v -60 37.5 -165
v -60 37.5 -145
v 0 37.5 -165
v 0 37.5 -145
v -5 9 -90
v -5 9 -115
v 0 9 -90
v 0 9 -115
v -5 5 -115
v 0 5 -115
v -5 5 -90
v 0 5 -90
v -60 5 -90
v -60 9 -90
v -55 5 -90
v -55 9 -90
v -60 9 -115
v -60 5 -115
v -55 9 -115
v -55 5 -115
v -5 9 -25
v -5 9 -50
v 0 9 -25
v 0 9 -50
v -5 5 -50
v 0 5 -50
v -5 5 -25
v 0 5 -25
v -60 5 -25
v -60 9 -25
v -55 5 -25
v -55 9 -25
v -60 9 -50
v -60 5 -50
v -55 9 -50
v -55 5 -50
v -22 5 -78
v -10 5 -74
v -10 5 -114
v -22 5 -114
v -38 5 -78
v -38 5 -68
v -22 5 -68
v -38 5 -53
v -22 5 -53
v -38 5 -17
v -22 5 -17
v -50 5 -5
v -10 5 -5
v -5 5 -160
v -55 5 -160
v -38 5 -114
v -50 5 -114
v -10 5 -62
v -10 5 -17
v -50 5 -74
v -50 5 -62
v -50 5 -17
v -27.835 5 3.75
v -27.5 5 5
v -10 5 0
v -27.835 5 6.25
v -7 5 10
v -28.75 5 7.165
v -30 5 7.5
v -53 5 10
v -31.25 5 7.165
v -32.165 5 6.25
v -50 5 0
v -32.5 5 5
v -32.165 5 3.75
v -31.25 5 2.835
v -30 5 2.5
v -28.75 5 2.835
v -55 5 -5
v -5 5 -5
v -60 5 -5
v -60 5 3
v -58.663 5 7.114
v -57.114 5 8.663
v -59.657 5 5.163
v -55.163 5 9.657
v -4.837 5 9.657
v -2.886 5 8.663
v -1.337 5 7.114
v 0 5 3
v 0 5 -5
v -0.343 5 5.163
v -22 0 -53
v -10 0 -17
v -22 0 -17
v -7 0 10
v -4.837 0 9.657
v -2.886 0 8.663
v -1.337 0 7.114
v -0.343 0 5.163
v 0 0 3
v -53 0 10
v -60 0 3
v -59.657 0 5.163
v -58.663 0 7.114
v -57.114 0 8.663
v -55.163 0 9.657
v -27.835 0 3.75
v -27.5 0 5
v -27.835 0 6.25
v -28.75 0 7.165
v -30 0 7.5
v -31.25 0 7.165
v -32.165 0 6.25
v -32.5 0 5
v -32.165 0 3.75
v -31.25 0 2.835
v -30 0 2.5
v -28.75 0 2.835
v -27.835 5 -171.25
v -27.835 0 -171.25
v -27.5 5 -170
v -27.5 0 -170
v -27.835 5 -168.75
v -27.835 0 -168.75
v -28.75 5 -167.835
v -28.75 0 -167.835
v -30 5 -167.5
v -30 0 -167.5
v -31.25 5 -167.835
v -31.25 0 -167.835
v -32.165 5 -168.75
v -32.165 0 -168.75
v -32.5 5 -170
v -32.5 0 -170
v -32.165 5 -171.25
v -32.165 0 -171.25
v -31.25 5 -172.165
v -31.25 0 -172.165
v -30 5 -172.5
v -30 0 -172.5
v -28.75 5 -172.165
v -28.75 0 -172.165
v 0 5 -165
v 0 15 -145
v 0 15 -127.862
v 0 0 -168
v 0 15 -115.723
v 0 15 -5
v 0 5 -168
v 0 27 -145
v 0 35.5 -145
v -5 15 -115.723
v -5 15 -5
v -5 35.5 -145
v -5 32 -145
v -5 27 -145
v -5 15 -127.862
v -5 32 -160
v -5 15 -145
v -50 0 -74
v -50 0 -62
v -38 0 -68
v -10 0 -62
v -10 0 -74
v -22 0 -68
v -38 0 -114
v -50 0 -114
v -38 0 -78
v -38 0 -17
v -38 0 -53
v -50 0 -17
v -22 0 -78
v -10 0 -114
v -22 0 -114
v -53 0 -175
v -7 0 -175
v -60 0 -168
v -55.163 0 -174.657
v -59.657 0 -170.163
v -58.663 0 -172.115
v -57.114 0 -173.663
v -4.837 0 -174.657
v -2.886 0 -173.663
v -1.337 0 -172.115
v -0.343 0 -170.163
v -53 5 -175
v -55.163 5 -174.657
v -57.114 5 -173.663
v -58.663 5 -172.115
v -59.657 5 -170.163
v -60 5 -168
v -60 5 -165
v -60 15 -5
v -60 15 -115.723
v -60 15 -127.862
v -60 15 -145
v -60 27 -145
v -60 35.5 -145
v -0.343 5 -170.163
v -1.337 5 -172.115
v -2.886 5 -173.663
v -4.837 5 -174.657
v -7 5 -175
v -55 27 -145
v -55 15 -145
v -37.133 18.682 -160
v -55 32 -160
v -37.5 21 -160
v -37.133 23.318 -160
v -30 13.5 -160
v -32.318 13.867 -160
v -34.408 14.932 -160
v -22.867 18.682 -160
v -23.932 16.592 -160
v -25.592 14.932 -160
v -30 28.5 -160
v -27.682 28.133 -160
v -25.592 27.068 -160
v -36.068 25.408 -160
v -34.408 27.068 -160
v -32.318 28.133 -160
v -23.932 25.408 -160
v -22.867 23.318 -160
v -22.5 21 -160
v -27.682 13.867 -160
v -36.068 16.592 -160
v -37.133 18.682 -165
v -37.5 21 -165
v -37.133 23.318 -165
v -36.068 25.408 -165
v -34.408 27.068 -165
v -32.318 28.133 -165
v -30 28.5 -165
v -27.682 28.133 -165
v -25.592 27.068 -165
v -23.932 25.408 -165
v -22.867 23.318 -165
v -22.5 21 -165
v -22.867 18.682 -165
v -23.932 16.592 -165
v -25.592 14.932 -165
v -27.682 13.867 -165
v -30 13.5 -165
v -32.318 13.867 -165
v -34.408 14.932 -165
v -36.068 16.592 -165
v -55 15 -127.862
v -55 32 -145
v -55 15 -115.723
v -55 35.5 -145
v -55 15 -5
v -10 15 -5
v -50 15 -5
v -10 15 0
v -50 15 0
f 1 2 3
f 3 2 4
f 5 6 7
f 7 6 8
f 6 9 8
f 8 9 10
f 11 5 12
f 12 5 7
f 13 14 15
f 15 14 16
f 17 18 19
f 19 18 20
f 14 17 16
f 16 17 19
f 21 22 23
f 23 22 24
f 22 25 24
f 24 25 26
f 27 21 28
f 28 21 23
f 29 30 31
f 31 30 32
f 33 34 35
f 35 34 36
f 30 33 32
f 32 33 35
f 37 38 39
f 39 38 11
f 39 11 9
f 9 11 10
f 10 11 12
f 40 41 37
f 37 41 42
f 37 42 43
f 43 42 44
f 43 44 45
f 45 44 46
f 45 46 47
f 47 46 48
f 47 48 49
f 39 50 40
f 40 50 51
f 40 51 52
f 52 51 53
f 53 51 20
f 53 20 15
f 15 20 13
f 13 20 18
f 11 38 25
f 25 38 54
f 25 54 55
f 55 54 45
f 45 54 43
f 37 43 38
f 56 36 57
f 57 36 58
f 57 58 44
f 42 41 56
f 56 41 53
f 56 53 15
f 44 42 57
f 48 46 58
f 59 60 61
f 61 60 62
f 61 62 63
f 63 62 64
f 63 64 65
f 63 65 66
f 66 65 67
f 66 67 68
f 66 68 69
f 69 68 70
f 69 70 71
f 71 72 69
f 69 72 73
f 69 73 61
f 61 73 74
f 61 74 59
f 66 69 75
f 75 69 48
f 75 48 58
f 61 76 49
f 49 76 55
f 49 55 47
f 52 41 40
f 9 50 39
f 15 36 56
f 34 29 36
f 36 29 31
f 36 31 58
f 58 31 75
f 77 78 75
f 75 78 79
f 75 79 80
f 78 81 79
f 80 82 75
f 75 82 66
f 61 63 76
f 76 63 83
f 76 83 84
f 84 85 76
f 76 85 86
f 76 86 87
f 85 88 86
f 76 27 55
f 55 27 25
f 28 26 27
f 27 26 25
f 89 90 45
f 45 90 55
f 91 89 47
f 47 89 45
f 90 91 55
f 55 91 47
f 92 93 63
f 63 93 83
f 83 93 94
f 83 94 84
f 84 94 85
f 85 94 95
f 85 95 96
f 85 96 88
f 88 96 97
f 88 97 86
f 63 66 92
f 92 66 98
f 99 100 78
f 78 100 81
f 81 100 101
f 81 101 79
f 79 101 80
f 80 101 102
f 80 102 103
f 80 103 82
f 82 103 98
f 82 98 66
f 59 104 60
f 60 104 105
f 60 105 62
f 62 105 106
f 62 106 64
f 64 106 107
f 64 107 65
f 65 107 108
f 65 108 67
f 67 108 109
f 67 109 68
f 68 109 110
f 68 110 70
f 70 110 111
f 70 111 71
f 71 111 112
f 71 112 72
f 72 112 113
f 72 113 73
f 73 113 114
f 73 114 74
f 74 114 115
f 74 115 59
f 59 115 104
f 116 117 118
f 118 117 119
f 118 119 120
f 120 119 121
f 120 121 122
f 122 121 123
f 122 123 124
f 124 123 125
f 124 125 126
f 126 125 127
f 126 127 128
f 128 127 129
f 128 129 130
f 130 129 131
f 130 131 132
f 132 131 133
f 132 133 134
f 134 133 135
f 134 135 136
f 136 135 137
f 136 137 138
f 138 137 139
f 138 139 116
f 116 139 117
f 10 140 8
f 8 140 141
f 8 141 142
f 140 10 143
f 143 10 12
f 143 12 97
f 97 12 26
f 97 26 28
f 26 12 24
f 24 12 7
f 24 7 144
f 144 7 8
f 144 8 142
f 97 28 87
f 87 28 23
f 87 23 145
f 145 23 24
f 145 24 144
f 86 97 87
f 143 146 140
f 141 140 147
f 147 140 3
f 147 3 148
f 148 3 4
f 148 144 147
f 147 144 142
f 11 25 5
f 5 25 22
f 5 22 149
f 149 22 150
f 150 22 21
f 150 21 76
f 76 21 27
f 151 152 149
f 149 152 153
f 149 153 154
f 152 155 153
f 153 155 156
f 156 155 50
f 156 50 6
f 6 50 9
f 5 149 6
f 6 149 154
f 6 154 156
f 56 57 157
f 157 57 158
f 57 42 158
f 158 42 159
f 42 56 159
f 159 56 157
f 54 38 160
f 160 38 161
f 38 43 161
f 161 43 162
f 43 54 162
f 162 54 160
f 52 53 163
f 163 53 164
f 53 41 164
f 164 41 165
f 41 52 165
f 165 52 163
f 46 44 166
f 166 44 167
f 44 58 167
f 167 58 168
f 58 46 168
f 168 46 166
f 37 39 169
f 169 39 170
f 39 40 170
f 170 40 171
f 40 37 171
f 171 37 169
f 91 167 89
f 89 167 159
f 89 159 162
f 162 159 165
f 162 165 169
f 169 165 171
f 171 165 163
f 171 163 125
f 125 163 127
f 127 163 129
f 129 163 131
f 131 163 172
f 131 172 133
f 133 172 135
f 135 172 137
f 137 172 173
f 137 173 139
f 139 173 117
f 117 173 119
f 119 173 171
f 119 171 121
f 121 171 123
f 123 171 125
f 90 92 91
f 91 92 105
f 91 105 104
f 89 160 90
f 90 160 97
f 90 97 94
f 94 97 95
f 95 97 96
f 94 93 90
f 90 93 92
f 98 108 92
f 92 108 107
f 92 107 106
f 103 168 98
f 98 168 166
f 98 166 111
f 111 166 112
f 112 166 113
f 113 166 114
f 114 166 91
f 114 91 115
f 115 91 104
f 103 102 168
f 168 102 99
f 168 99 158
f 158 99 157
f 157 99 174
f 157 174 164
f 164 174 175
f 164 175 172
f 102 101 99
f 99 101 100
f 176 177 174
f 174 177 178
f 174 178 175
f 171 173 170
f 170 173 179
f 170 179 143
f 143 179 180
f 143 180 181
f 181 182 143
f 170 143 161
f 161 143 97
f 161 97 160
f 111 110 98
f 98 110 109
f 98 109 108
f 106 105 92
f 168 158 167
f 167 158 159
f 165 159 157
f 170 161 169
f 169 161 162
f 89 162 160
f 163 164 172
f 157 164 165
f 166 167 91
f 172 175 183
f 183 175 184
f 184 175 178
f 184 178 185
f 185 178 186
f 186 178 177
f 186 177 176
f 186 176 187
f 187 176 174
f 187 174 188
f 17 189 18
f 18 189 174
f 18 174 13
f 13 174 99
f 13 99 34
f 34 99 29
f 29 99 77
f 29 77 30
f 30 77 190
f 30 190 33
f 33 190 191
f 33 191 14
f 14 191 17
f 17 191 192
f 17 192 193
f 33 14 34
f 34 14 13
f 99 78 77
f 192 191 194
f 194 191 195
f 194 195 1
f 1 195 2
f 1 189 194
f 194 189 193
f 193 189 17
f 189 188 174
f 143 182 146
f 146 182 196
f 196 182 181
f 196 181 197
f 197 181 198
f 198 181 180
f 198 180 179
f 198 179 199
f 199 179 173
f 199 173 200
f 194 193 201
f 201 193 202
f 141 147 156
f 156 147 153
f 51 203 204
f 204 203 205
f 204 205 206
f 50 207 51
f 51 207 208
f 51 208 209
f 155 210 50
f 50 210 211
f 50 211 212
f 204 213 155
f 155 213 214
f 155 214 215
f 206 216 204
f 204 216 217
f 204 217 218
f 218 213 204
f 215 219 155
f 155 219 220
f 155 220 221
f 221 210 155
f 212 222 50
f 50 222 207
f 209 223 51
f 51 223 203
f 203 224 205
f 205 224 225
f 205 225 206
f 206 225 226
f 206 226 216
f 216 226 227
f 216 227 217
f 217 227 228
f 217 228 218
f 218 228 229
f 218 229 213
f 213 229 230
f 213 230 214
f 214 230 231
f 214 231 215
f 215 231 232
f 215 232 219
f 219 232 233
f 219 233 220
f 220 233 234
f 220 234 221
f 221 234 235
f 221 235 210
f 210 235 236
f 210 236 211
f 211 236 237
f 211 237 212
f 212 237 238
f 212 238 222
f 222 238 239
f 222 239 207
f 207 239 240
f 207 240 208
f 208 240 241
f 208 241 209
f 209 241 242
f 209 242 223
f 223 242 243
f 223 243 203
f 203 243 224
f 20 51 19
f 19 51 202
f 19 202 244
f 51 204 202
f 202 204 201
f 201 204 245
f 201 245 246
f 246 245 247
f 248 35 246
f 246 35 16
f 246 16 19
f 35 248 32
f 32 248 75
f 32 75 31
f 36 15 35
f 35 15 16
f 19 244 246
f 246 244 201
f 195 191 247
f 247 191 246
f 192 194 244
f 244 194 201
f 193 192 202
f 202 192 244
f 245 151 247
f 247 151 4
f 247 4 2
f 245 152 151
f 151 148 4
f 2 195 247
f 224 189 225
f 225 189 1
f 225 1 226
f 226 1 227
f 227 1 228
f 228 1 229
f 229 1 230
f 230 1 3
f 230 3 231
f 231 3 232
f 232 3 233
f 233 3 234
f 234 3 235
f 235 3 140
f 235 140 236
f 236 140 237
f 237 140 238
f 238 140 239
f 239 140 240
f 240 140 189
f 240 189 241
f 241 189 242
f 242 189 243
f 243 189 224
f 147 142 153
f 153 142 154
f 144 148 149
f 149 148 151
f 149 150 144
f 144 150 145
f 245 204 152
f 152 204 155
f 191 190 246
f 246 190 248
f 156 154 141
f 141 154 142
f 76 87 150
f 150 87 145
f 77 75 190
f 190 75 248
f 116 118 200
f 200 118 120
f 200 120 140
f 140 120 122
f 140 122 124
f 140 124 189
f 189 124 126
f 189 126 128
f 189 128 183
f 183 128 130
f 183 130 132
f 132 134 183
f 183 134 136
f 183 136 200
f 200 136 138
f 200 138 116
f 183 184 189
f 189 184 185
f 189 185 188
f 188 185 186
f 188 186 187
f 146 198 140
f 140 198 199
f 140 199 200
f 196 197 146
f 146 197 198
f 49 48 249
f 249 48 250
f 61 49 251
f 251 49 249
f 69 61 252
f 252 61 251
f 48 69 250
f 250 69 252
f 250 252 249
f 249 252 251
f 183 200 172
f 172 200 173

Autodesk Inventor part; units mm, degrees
ref_plane "YZ Plane" through (0, 0, 0) normal (1, 0, 0) x (0, 1, 0)
ref_plane "XZ Plane" through (0, 0, 0) normal (0, 1, 0) x (-1, 0, 0)
ref_plane "XY Plane" through (0, 0, 0) normal (0, 0, 1) x (1, 0, 0)
sketch "Sketch1" plane through (0, 0, 0) normal (0, 1, 0) x (-1, 0, 0)
  line L0 (0, 0) -> (60, 0)
  line L1 (60, 0) -> (60, -170)
  line L2 (60, -170) -> (0, -170)
  line L3 (0, -170) -> (0, 0)
  dimension "d0" = 60
  dimension "d1" = 170
extrude "Extrusion1" add sketch "Sketch1" along normal blind 5
sketch "Sketch2" plane through (0, 5, 0) normal (0, 1, 0) x (1, 0, 0)
  line L0 (-60, 0) -> (-55, 0)
  line L1 (-60, 170) -> (-60, 0) projected
  line L2 (0, 0) -> (0, 170) projected
  line L3 (-60, 170) -> (0, 170)
  line L4 (0, 170) -> (0, 162.5)
  line L5 (0, 162.5) -> (-60, 162.5)
  line L6 (-60, 162.5) -> (-60, 170)
  line L7 (-60, 0) -> (0, 0) projected
  line L8 (-60, 0) -> (0, 0)
  line L9 (0, 0) -> (0, 7.5)
  line L10 (0, 7.5) -> (-60, 7.5)
  line L11 (-60, 7.5) -> (-60, 0)
  line L12 (0, 170) -> (-60, 170) projected
  line L13 (-60, 0) -> (-55, 0)
  line L14 (-55, 0) -> (-55, 170)
  line L15 (-55, 170) -> (-60, 170)
  line L16 (-60, 170) -> (-60, 0)
  line L17 (0, 0) -> (-5, 0)
  line L18 (-5, 0) -> (-5, 170)
  line L19 (-5, 170) -> (0, 170)
  line L20 (0, 170) -> (0, 0)
  line L21 (-60, 0) -> (0, 0)
  line L22 (0, 0) -> (0, -5)
  line L23 (0, -5) -> (-60, -5)
  line L24 (-60, -5) -> (-60, 0)
  line L25 (-60, 170) -> (0, 170)
  line L26 (0, 170) -> (0, 175)
  line L27 (0, 175) -> (-60, 175)
  line L28 (-60, 175) -> (-60, 170)
  dimension "d5" = 7.5
  dimension "d6" = 7.5
  dimension "d7" = 5
  dimension "d8" = 5
  dimension "d10" = 5
  dimension "d11" = 5
extrude "Extrusion2" add sketch "Sketch2" against normal blind 5 contours L0 L7 L22 L23 L24 | L28 L27 L26 L3
sketch "Sketch3" plane through (0, 5, 0) normal (0, 1, 0) x (1, 0, 0)
  line L0 (0, -5) -> (-60, -5) projected
  line L1 (0, -5) -> (0, 175) projected
  line L2 (-60, -10) -> (0, -10)
  line L3 (0, -5) -> (0, 5)
  line L4 (-60, 5) -> (-60, -5)
  line L5 (-55, 175) -> (-60, 175)
  line L6 (-60, 175) -> (-60, 5)
  line L7 (-5, 175) -> (0, 175)
  line L8 (-60, 175) -> (-60, -5) projected
  line L9 (-60, 175) -> (-1, 175)
  line L10 (-1, 165) -> (-60, 165)
  line L11 (-60, 165) -> (-60, 175)
  line L12 (-55, 165) -> (-5, 165)
  line L13 (-5, 160) -> (-55, 160)
  line L14 (-55, 5) -> (-55, 160)
  line L15 (-5, 5) -> (-5, 160)
  line L16 (-50, 5) -> (-10, 5)
  line L17 (-10, 5) -> (-10, 5)
  line L18 (-10, 5) -> (-50, 5)
  line L19 (-50, 5) -> (-50, 5)
  line L20 (-60, 5) -> (-55, 5)
  line L21 (-5, 5) -> (0, 5)
  line L22 (0, 5) -> (0, 165)
  line L23 (-60, -5) -> (-60, -10)
  line L24 (0, -5) -> (0, -10)
  line L25 (-50, 5) -> (-50, 0)
  line L26 (-50, 0) -> (-10, 0)
  line L27 (-10, 0) -> (-10, 5)
  point P0 (0, 0)
  dimension "d15" = 5
  dimension "d16" = 5
  dimension "d17" = 10
  dimension "d18" = 5
  dimension "d19" = 40
  dimension "d89" = 155
  dimension "d90" = 5
  dimension "d91" = 10
sketch "Sketch4" plane through (0, 5, 0) normal (0, 1, 0) x (1, 0, 0)
  line L0 (-60, 175) -> (-60, -5) projected
  line L1 (-60, 5) -> (-55, 5)
  line L2 (-55, 5) -> (-55, 160)
  line L3 (-55, 160) -> (-5, 160)
  line L4 (-5, 160) -> (-5, 5)
  line L5 (-5, 5) -> (0, 5)
  line L6 (0, -5) -> (0, 175) projected
  line L7 (0, 165) -> (-60, 165)
  line L8 (-60, 165) -> (-60, 5)
  point P0 (0, 0)
extrude "Extrusion3" add sketch "Sketch3" along normal blind 10 contours L16 L27 L26 L25
extrude "Extrusion4" add sketch "Sketch4" along normal blind 10
sketch "Sketch5" plane through (0, 0, 5) normal (1, 0, 0) x (0, 0, -1)
  line L0 (180, 5) -> (170, 5) projected
  line L1 (170, 5) -> (165, 5)
  line L2 (165, 5) -> (165, 32)
  line L3 (165, 32) -> (170, 32)
  line L4 (170, 32) -> (170, 5)
  point P0 (5, 0)
  dimension "d25" = 5
  dimension "d26" = 27
sketch "Sketch6" plane through (0, 5, 0) normal (0, 1, 0) x (1, 0, 0)
  point P0 (0, 0)
extrude "Extrusion5" add sketch "Sketch5" against normal blind 60
sketch "Sketch7" plane through (0, 0, 5) normal (1, 0, 0) x (0, 0, -1)
  line L0 (165, 32) -> (170, 32) projected
  line L1 (170, 32) -> (150, 32)
  line L2 (150, 32) -> (150, 35.5)
  line L3 (150, 35.5) -> (170, 35.5)
  line L4 (170, 35.5) -> (170, 32)
  point P0 (5, 0)
  dimension "d29" = 20
  dimension "d30" = 3.5
extrude "Extrusion6" add sketch "Sketch7" against normal blind 60
sketch "Sketch8" plane through (-55, 5, -160) normal (0, 0, 1) x (1, 0, 0)
  point P0 (55, -5)
sketch "Sketch9" plane through (0, 0, 5) normal (1, 0, 0) x (0, 0, -1)
  line L0 (150, 35.5) -> (170, 35.5) projected
  line L1 (170, 35.5) -> (170, 5) projected
  line L2 (150, 35.5) -> (170, 35.5)
  line L3 (170, 35.5) -> (170, 27)
  line L4 (170, 27) -> (150, 27)
  line L5 (150, 27) -> (150, 35.5)
  point P0 (5, 0)
extrude "Extrusion7" add sketch "Sketch9" against normal blind 5
sketch "Sketch10" plane through (0, 0, 5) normal (1, 0, 0) x (0, 0, -1)
  line L0 (150, 35.5) -> (150, 27) projected
  line L1 (150, 27) -> (132.8622, 15)
  line L2 (10, 15) -> (165, 15) projected
  line L3 (150, 27) -> (170.9214, 27) construction
  line L4 (150, 35.5) -> (170, 35.5) projected
  line L5 (150, 35.5) -> (120.723, 15)
  line L6 (150, 35.5) -> (185.7407, 35.5) construction
  line L7 (132.8622, 15) -> (120.723, 15)
  line L8 (150, 35.5) -> (150, 27)
  point P0 (5, 0)
  dimension "d35" = 145
  dimension "d36" = 145
extrude "Extrusion8" add sketch "Sketch10" against normal blind 5
sketch "Sketch11" plane through (0, 0, 5) normal (1, 0, 0) x (0, 0, -1)
  point P0 (5, 0)
sketch "Sketch12" plane through (-60, 0, -175) normal (-1, 0, 0) x (0, 0, 1)
  line L0 (10, 35.5) -> (10, 5) projected
  line L1 (15, 27) -> (30, 27) projected
  line L2 (10, 35.5) -> (30, 35.5)
  line L3 (30, 35.5) -> (30, 27)
  line L4 (30, 27) -> (10, 27)
  line L5 (10, 27) -> (10, 35.5)
  point P0 (175, 0)
extrude "Extrusion9" add sketch "Sketch12" against normal blind 5
sketch "Sketch13" plane through (-60, 0, -175) normal (-1, 0, 0) x (0, 0, 1)
  line L0 (30, 27) -> (47.1378, 15)
  line L1 (15, 15) -> (170, 15) projected
  line L2 (30, 27) -> (50.9214, 27) construction
  line L3 (30, 32) -> (30, 35.5) projected
  line L4 (30, 35.5) -> (59.277, 15)
  line L5 (30, 35.5) -> (65.7407, 35.5) construction
  line L6 (59.277, 15) -> (47.1378, 15)
  line L7 (30, 27) -> (15, 27) projected
  line L8 (30, 35.5) -> (30, 27) projected
  line L9 (30, 27) -> (30, 35.5)
  point P0 (175, 0)
  dimension "d41" = 35
  dimension "d42" = 35
extrude "Extrusion10" add sketch "Sketch13" against normal blind 5
sketch "Sketch14" plane through (0, 0, 5) normal (1, 0, 0) x (0, 0, -1)
  line L0 (107.1526, 5) -> (92.1526, 5)
  line L1 (92.1526, 5) -> (92.1526, 7)
  line L2 (92.1526, 7) -> (107.1526, 7)
  line L3 (107.1526, 7) -> (107.1526, 5)
  line L4 (20, 5) -> (35, 5)
  line L5 (35, 5) -> (35, 7)
  line L6 (35, 7) -> (20, 7)
  line L7 (20, 7) -> (20, 5)
  point P0 (5, 0)
  point P1 (10, 5)
  point P2 (120.723, 15)
  dimension "d45" = 10
  dimension "d47" = 15
  dimension "d48" = 15
extrude "Extrusion11" cut sketch "Sketch14" against normal through all
sketch "Sketch15" plane through (0, 5, -165) normal (0, 0, -1) x (-1, 0, 0)
  circle A0 centre (30, 16) radius 7.5
  point P0 (0, -5)
  point P1 (0, 30.5)
  dimension "d53" = 15
extrude "Extrusion12" cut sketch "Sketch15" against normal blind 5
sketch "Sketch16" plane through (0, 0, 5) normal (1, 0, 0) x (0, 0, -1)
  line L0 (165, 27) -> (150, 27) projected
  line L1 (165, 15) -> (165, 27) projected
  line L2 (150, 27) -> (165, 27)
  line L3 (165, 27) -> (165, 15)
  line L4 (165, 15) -> (150, 15)
  line L5 (150, 15) -> (150, 27)
  point P0 (5, 0)
extrude "Extrusion13" add sketch "Sketch16" against normal blind 5
sketch "Sketch17" plane through (-60, 0, -175) normal (-1, 0, 0) x (0, 0, 1)
  line L0 (30, 27) -> (15, 27) projected
  line L1 (47.1378, 15) -> (30, 15) projected
  line L2 (15, 27) -> (30, 27)
  line L3 (30, 27) -> (30, 15)
  line L4 (30, 15) -> (15, 15)
  line L5 (15, 15) -> (15, 27)
  point P0 (175, 0)
extrude "Extrusion14" add sketch "Sketch17" against normal blind 5
fillet "Fillet1" radius 7 4 edges at (0, 2.5, -175) (-60, 2.5, -175) (0, 2.5, 5) (-60, 2.5, 5)
sketch "Sketch19" plane through (0, 5, 0) normal (0, 1, 0) x (1, 0, 0)
  line L0 (-50, 5) -> (-50, 5) projected
  line L1 (-50, 17) -> (-38, 17)
  line L2 (-38, 17) -> (-38, 53)
  line L3 (-38, 53) -> (-50, 17)
  line L4 (-10, 22) -> (-22, 22)
  line L5 (-22, 22) -> (-22, 58)
  line L6 (-22, 58) -> (-10, 22)
  line L7 (-38, 78) -> (-38, 114)
  line L8 (-38, 114) -> (-50, 114)
  line L9 (-50, 114) -> (-38, 78)
  line L10 (-22, 78) -> (-22, 114)
  line L11 (-22, 114) -> (-10, 114)
  line L12 (-10, 114) -> (-22, 78)
  point P0 (0, 0)
  dimension "d67" = 12
  dimension "d68" = 12
  dimension "d69" = 36
  dimension "d71" = 12
  dimension "d72" = 36
  dimension "d73" = 12
  dimension "d74" = 20
  dimension "d75" = 36
  dimension "d76" = 12
extrude "Extrusion16" cut sketch "Sketch19" against normal blind 5
sketch "Sketch20" plane through (0, 5, 0) normal (0, 1, 0) x (1, 0, 0)
  line L0 (-38, 17) -> (-50, 17) projected
  line L1 (-50, 114) -> (-38, 78) projected
  line L2 (-38, 78) -> (-38, 114) projected
  line L3 (-38, 68) -> (-50, 74)
  line L4 (-50, 62) -> (-38, 68)
  line L5 (-50, 74) -> (-50, 62)
  line L6 (-22, 68) -> (-10, 62)
  line L7 (-10, 74) -> (-22, 68)
  line L8 (-10, 62) -> (-10, 74)
  point P0 (0, 0)
extrude "Extrusion17" cut sketch "Sketch20" against normal blind 5
sketch "Sketch21" plane through (-60, 5, -5) normal (-1, 0, 0) x (0, 0, 1)
  line L0 (-17, 0) -> (-53, 0) projected
  line L1 (-7, 2) -> (-31, 2)
  line L2 (-31, 2) -> (-31, 0)
  line L3 (-31, 0) -> (-7, 0)
  line L4 (-7, 0) -> (-7, 2)
  line L5 (-79, 2) -> (-103, 2)
  line L6 (-103, 2) -> (-103, 0)
  line L7 (-103, 0) -> (-79, 0)
  line L8 (-79, 0) -> (-79, 2)
  point P0 (5, -5)
  dimension "d84" = 24
  dimension "d85" = 24
extrude "Extrusion18" cut sketch "Sketch21" against normal through all
sketch "Sketch22" plane through (0, 5, 0) normal (0, 1, 0) x (1, 0, 0)
  point P0 (0, 0)
sketch "Sketch24" plane through (0, 5, 0) normal (0, 1, 0) x (1, 0, 0)
  point P0 (0, 0)
sketch "Sketch25" plane through (0, 5, 0) normal (0, 1, 0) x (1, 0, 0)
  point P0 (0, 0)
sketch "Sketch26" plane through (0, 5, 0) normal (0, 1, 0) x (1, 0, 0)
  arc A0 (-60, 2) -> (-53, -5) centre (-53, 2) ccw projected
  line L0 (-60, 2) -> (0, 2)
  line L1 (0, 2) -> (0, -10)
  line L2 (0, -10) -> (-60, -10)
  line L3 (-60, -10) -> (-60, 2)
  point P0 (0, 0)
  dimension "d93" = 12
extrude "Extrusion19" add sketch "Sketch26" against normal blind 5
sketch "Sketch27" plane through (0, 5, 0) normal (0, 1, 0) x (1, 0, 0)
  point P0 (0, 0)
sketch "Sketch28" plane through (-60, 5, 10) normal (0, 0, 1) x (1, 0, 0)
  point P0 (60, -5)
sketch "Sketch29" plane through (0, 5, 0) normal (0, 1, 0) x (1, 0, 0)
  line L0 (-30, -10) -> (-30, -5)
  circle A0 centre (-30, -5) radius 2.5
  arc A1 (-53, 175) -> (-60, 168) centre (-53, 168) ccw projected
  line L1 (-7, 175) -> (-53, 175) projected
  line L2 (-30, 175) -> (-30, 170)
  circle A2 centre (-30, 170) radius 2.5
  point P0 (0, 0)
  point P1 (-60, -10)
  dimension "d96" = 30
  dimension "d97" = 5
  dimension "d98" = 5
  dimension "d102" = 5
extrude "Extrusion20" cut sketch "Sketch29" along normal mid plane 10
fillet "Fillet2" radius 7 2 edges at (-60, 2.5, 10) (0, 2.5, 10)
sketch "Sketch30" plane through (0, 5, 0) normal (0, 1, 0) x (1, 0, 0)
  line L0 (-22, 22) -> (-10, 22) projected
  line L1 (-24, 58) -> (-10, 58)
  line L2 (-10, 58) -> (-10, 22)
  line L3 (-10, 22) -> (-24, 22)
  line L4 (-24, 22) -> (-24, 58)
  point P0 (0, 0)
extrude "Extrusion21" add sketch "Sketch30" against normal blind 5
sketch "Sketch31" plane through (0, 5, 0) normal (0, 1, 0) x (1, 0, 0)
  point P0 (0, 0)
sketch "Sketch32" plane through (0, 5, 0) normal (0, 1, 0) x (1, 0, 0)
  line L0 (-38, 53) -> (-50, 17) projected
  line L1 (-50, 17) -> (-38, 17) projected
  line L2 (-22, 53) -> (-22, 17)
  line L3 (-22, 53) -> (-10, 17)
  line L4 (-22, 17) -> (-10, 17)
  point P0 (0, 0)
extrude "Extrusion22" add sketch "Sketch32" against normal blind 2
sketch "Sketch33" plane through (0, 5, 0) normal (0, 1, 0) x (1, 0, 0)
  point P0 (0, 0)
sketch "Sketch34" plane through (0, 5, 0) normal (0, 1, 0) x (1, 0, 0)
  line L0 (-5, 160) -> (-55, 160) projected
  line L1 (-50, 5) -> (-10, 5) projected
  point P0 (0, 0)
  dimension "d111" = 155
sketch "Sketch35" plane through (-55, 5, -160) normal (0, 0, 1) x (1, 0, 0)
  point P0 (55, -5)
sketch "Sketch37" plane through (0, 5, 0) normal (0, 1, 0) x (1, 0, 0)
  line L0 (-22, 68) -> (-10, 62) projected
  line L1 (-38, 17) -> (-50, 17) projected
  line L2 (-10, 74) -> (-10, 62) projected
  line L3 (-38, 53) -> (-38, 17) projected
  line L4 (-22, 53) -> (-22, 17)
  line L5 (-10, 17) -> (-22, 53)
  line L6 (-22, 17) -> (-10, 17)
  point P0 (0, 0)
extrude "Extrusion23" cut sketch "Sketch37" against normal blind 10
sketch "Sketch38" plane through (0, 5, -5) normal (1, 0, 0) x (0, 0, -1)
  line L0 (31, 2) -> (7, 2) projected
  line L1 (31, 0) -> (31, 2) projected
  line L2 (7, 2) -> (31, 2)
  line L3 (31, 2) -> (31, 0)
  line L4 (31, 0) -> (7, 0)
  line L5 (7, 0) -> (7, 2)
  line L6 (103, 0) -> (79, 0) projected
  line L7 (79, 2) -> (103, 2)
  line L8 (103, 2) -> (103, 0)
  line L9 (103, 0) -> (79, 0)
  line L10 (79, 0) -> (79, 2)
  point P0 (-5, -5)
extrude "Extrusion24" add sketch "Sketch38" against normal blind 5
sketch "Sketch39" plane through (-60, 5, -5) normal (-1, 0, 0) x (0, 0, 1)
  line L0 (-103, 2) -> (-103, 0) projected
  line L1 (-79, 0) -> (-79, 2) projected
  line L2 (-103, 2) -> (-79, 2)
  line L3 (-79, 2) -> (-79, 0)
  line L4 (-79, 0) -> (-103, 0)
  line L5 (-103, 0) -> (-103, 2)
  line L6 (-31, 2) -> (-7, 2) projected
  line L7 (-7, 0) -> (-31, 0) projected
  line L8 (-31, 2) -> (-7, 2)
  line L9 (-7, 2) -> (-7, 0)
  line L10 (-7, 0) -> (-31, 0)
  line L11 (-31, 0) -> (-31, 2)
  point P0 (5, -5)
extrude "Extrusion25" add sketch "Sketch39" against normal blind 5
sketch "Sketch40" plane through (0, 5, -5) normal (1, 0, 0) x (0, 0, -1)
  line L0 (0, 0) -> (0, 10) projected
  line L1 (0, 0) -> (20, 0)
  line L2 (0, 0) -> (155, 0) projected
  line L3 (20, 0) -> (70, 0)
  line L4 (70, 0) -> (85, 0)
  line L5 (20, 0) -> (45, 0)
  line L6 (45, 0) -> (45, 4)
  line L7 (45, 4) -> (20, 4)
  line L8 (20, 4) -> (20, 0)
  line L9 (85, 0) -> (110, 0)
  line L10 (110, 0) -> (110, 4)
  line L11 (110, 4) -> (85, 4)
  line L12 (85, 4) -> (85, 0)
  point P0 (-5, -5)
  dimension "d118" = 20
  dimension "d119" = 50
  dimension "d120" = 15
  dimension "d121" = 25
  dimension "d122" = 4
  dimension "d123" = 25
  dimension "d124" = 4
extrude "Extrusion26" cut sketch "Sketch40" against normal through all
sketch "Sketch41" plane through (-55, 5, -160) normal (0, 0, 1) x (1, 0, 0)
  point P0 (55, -5)
sketch "Sketch42" plane through (-60, 35.5, -165) normal (0, 1, 0) x (1, 0, 0)
  line L0 (0, 0) -> (60, 0)
  line L1 (60, 0) -> (60, -20)
  line L2 (60, -20) -> (0, -20)
  line L3 (0, -20) -> (0, 0)
  point P0 (60, -165)
extrude "Extrusion27" add sketch "Sketch42" along normal blind 2
sketch "Sketch43" plane through (0, 5, -5) normal (1, 0, 0) x (0, 0, -1)
  point P0 (-5, -5)
sketch "Sketch44" plane through (0, 5, 0) normal (0, 1, 0) x (1, 0, 0)
  point P0 (0, 0)
properties part number "3C_LiPoBatteryHolder"
